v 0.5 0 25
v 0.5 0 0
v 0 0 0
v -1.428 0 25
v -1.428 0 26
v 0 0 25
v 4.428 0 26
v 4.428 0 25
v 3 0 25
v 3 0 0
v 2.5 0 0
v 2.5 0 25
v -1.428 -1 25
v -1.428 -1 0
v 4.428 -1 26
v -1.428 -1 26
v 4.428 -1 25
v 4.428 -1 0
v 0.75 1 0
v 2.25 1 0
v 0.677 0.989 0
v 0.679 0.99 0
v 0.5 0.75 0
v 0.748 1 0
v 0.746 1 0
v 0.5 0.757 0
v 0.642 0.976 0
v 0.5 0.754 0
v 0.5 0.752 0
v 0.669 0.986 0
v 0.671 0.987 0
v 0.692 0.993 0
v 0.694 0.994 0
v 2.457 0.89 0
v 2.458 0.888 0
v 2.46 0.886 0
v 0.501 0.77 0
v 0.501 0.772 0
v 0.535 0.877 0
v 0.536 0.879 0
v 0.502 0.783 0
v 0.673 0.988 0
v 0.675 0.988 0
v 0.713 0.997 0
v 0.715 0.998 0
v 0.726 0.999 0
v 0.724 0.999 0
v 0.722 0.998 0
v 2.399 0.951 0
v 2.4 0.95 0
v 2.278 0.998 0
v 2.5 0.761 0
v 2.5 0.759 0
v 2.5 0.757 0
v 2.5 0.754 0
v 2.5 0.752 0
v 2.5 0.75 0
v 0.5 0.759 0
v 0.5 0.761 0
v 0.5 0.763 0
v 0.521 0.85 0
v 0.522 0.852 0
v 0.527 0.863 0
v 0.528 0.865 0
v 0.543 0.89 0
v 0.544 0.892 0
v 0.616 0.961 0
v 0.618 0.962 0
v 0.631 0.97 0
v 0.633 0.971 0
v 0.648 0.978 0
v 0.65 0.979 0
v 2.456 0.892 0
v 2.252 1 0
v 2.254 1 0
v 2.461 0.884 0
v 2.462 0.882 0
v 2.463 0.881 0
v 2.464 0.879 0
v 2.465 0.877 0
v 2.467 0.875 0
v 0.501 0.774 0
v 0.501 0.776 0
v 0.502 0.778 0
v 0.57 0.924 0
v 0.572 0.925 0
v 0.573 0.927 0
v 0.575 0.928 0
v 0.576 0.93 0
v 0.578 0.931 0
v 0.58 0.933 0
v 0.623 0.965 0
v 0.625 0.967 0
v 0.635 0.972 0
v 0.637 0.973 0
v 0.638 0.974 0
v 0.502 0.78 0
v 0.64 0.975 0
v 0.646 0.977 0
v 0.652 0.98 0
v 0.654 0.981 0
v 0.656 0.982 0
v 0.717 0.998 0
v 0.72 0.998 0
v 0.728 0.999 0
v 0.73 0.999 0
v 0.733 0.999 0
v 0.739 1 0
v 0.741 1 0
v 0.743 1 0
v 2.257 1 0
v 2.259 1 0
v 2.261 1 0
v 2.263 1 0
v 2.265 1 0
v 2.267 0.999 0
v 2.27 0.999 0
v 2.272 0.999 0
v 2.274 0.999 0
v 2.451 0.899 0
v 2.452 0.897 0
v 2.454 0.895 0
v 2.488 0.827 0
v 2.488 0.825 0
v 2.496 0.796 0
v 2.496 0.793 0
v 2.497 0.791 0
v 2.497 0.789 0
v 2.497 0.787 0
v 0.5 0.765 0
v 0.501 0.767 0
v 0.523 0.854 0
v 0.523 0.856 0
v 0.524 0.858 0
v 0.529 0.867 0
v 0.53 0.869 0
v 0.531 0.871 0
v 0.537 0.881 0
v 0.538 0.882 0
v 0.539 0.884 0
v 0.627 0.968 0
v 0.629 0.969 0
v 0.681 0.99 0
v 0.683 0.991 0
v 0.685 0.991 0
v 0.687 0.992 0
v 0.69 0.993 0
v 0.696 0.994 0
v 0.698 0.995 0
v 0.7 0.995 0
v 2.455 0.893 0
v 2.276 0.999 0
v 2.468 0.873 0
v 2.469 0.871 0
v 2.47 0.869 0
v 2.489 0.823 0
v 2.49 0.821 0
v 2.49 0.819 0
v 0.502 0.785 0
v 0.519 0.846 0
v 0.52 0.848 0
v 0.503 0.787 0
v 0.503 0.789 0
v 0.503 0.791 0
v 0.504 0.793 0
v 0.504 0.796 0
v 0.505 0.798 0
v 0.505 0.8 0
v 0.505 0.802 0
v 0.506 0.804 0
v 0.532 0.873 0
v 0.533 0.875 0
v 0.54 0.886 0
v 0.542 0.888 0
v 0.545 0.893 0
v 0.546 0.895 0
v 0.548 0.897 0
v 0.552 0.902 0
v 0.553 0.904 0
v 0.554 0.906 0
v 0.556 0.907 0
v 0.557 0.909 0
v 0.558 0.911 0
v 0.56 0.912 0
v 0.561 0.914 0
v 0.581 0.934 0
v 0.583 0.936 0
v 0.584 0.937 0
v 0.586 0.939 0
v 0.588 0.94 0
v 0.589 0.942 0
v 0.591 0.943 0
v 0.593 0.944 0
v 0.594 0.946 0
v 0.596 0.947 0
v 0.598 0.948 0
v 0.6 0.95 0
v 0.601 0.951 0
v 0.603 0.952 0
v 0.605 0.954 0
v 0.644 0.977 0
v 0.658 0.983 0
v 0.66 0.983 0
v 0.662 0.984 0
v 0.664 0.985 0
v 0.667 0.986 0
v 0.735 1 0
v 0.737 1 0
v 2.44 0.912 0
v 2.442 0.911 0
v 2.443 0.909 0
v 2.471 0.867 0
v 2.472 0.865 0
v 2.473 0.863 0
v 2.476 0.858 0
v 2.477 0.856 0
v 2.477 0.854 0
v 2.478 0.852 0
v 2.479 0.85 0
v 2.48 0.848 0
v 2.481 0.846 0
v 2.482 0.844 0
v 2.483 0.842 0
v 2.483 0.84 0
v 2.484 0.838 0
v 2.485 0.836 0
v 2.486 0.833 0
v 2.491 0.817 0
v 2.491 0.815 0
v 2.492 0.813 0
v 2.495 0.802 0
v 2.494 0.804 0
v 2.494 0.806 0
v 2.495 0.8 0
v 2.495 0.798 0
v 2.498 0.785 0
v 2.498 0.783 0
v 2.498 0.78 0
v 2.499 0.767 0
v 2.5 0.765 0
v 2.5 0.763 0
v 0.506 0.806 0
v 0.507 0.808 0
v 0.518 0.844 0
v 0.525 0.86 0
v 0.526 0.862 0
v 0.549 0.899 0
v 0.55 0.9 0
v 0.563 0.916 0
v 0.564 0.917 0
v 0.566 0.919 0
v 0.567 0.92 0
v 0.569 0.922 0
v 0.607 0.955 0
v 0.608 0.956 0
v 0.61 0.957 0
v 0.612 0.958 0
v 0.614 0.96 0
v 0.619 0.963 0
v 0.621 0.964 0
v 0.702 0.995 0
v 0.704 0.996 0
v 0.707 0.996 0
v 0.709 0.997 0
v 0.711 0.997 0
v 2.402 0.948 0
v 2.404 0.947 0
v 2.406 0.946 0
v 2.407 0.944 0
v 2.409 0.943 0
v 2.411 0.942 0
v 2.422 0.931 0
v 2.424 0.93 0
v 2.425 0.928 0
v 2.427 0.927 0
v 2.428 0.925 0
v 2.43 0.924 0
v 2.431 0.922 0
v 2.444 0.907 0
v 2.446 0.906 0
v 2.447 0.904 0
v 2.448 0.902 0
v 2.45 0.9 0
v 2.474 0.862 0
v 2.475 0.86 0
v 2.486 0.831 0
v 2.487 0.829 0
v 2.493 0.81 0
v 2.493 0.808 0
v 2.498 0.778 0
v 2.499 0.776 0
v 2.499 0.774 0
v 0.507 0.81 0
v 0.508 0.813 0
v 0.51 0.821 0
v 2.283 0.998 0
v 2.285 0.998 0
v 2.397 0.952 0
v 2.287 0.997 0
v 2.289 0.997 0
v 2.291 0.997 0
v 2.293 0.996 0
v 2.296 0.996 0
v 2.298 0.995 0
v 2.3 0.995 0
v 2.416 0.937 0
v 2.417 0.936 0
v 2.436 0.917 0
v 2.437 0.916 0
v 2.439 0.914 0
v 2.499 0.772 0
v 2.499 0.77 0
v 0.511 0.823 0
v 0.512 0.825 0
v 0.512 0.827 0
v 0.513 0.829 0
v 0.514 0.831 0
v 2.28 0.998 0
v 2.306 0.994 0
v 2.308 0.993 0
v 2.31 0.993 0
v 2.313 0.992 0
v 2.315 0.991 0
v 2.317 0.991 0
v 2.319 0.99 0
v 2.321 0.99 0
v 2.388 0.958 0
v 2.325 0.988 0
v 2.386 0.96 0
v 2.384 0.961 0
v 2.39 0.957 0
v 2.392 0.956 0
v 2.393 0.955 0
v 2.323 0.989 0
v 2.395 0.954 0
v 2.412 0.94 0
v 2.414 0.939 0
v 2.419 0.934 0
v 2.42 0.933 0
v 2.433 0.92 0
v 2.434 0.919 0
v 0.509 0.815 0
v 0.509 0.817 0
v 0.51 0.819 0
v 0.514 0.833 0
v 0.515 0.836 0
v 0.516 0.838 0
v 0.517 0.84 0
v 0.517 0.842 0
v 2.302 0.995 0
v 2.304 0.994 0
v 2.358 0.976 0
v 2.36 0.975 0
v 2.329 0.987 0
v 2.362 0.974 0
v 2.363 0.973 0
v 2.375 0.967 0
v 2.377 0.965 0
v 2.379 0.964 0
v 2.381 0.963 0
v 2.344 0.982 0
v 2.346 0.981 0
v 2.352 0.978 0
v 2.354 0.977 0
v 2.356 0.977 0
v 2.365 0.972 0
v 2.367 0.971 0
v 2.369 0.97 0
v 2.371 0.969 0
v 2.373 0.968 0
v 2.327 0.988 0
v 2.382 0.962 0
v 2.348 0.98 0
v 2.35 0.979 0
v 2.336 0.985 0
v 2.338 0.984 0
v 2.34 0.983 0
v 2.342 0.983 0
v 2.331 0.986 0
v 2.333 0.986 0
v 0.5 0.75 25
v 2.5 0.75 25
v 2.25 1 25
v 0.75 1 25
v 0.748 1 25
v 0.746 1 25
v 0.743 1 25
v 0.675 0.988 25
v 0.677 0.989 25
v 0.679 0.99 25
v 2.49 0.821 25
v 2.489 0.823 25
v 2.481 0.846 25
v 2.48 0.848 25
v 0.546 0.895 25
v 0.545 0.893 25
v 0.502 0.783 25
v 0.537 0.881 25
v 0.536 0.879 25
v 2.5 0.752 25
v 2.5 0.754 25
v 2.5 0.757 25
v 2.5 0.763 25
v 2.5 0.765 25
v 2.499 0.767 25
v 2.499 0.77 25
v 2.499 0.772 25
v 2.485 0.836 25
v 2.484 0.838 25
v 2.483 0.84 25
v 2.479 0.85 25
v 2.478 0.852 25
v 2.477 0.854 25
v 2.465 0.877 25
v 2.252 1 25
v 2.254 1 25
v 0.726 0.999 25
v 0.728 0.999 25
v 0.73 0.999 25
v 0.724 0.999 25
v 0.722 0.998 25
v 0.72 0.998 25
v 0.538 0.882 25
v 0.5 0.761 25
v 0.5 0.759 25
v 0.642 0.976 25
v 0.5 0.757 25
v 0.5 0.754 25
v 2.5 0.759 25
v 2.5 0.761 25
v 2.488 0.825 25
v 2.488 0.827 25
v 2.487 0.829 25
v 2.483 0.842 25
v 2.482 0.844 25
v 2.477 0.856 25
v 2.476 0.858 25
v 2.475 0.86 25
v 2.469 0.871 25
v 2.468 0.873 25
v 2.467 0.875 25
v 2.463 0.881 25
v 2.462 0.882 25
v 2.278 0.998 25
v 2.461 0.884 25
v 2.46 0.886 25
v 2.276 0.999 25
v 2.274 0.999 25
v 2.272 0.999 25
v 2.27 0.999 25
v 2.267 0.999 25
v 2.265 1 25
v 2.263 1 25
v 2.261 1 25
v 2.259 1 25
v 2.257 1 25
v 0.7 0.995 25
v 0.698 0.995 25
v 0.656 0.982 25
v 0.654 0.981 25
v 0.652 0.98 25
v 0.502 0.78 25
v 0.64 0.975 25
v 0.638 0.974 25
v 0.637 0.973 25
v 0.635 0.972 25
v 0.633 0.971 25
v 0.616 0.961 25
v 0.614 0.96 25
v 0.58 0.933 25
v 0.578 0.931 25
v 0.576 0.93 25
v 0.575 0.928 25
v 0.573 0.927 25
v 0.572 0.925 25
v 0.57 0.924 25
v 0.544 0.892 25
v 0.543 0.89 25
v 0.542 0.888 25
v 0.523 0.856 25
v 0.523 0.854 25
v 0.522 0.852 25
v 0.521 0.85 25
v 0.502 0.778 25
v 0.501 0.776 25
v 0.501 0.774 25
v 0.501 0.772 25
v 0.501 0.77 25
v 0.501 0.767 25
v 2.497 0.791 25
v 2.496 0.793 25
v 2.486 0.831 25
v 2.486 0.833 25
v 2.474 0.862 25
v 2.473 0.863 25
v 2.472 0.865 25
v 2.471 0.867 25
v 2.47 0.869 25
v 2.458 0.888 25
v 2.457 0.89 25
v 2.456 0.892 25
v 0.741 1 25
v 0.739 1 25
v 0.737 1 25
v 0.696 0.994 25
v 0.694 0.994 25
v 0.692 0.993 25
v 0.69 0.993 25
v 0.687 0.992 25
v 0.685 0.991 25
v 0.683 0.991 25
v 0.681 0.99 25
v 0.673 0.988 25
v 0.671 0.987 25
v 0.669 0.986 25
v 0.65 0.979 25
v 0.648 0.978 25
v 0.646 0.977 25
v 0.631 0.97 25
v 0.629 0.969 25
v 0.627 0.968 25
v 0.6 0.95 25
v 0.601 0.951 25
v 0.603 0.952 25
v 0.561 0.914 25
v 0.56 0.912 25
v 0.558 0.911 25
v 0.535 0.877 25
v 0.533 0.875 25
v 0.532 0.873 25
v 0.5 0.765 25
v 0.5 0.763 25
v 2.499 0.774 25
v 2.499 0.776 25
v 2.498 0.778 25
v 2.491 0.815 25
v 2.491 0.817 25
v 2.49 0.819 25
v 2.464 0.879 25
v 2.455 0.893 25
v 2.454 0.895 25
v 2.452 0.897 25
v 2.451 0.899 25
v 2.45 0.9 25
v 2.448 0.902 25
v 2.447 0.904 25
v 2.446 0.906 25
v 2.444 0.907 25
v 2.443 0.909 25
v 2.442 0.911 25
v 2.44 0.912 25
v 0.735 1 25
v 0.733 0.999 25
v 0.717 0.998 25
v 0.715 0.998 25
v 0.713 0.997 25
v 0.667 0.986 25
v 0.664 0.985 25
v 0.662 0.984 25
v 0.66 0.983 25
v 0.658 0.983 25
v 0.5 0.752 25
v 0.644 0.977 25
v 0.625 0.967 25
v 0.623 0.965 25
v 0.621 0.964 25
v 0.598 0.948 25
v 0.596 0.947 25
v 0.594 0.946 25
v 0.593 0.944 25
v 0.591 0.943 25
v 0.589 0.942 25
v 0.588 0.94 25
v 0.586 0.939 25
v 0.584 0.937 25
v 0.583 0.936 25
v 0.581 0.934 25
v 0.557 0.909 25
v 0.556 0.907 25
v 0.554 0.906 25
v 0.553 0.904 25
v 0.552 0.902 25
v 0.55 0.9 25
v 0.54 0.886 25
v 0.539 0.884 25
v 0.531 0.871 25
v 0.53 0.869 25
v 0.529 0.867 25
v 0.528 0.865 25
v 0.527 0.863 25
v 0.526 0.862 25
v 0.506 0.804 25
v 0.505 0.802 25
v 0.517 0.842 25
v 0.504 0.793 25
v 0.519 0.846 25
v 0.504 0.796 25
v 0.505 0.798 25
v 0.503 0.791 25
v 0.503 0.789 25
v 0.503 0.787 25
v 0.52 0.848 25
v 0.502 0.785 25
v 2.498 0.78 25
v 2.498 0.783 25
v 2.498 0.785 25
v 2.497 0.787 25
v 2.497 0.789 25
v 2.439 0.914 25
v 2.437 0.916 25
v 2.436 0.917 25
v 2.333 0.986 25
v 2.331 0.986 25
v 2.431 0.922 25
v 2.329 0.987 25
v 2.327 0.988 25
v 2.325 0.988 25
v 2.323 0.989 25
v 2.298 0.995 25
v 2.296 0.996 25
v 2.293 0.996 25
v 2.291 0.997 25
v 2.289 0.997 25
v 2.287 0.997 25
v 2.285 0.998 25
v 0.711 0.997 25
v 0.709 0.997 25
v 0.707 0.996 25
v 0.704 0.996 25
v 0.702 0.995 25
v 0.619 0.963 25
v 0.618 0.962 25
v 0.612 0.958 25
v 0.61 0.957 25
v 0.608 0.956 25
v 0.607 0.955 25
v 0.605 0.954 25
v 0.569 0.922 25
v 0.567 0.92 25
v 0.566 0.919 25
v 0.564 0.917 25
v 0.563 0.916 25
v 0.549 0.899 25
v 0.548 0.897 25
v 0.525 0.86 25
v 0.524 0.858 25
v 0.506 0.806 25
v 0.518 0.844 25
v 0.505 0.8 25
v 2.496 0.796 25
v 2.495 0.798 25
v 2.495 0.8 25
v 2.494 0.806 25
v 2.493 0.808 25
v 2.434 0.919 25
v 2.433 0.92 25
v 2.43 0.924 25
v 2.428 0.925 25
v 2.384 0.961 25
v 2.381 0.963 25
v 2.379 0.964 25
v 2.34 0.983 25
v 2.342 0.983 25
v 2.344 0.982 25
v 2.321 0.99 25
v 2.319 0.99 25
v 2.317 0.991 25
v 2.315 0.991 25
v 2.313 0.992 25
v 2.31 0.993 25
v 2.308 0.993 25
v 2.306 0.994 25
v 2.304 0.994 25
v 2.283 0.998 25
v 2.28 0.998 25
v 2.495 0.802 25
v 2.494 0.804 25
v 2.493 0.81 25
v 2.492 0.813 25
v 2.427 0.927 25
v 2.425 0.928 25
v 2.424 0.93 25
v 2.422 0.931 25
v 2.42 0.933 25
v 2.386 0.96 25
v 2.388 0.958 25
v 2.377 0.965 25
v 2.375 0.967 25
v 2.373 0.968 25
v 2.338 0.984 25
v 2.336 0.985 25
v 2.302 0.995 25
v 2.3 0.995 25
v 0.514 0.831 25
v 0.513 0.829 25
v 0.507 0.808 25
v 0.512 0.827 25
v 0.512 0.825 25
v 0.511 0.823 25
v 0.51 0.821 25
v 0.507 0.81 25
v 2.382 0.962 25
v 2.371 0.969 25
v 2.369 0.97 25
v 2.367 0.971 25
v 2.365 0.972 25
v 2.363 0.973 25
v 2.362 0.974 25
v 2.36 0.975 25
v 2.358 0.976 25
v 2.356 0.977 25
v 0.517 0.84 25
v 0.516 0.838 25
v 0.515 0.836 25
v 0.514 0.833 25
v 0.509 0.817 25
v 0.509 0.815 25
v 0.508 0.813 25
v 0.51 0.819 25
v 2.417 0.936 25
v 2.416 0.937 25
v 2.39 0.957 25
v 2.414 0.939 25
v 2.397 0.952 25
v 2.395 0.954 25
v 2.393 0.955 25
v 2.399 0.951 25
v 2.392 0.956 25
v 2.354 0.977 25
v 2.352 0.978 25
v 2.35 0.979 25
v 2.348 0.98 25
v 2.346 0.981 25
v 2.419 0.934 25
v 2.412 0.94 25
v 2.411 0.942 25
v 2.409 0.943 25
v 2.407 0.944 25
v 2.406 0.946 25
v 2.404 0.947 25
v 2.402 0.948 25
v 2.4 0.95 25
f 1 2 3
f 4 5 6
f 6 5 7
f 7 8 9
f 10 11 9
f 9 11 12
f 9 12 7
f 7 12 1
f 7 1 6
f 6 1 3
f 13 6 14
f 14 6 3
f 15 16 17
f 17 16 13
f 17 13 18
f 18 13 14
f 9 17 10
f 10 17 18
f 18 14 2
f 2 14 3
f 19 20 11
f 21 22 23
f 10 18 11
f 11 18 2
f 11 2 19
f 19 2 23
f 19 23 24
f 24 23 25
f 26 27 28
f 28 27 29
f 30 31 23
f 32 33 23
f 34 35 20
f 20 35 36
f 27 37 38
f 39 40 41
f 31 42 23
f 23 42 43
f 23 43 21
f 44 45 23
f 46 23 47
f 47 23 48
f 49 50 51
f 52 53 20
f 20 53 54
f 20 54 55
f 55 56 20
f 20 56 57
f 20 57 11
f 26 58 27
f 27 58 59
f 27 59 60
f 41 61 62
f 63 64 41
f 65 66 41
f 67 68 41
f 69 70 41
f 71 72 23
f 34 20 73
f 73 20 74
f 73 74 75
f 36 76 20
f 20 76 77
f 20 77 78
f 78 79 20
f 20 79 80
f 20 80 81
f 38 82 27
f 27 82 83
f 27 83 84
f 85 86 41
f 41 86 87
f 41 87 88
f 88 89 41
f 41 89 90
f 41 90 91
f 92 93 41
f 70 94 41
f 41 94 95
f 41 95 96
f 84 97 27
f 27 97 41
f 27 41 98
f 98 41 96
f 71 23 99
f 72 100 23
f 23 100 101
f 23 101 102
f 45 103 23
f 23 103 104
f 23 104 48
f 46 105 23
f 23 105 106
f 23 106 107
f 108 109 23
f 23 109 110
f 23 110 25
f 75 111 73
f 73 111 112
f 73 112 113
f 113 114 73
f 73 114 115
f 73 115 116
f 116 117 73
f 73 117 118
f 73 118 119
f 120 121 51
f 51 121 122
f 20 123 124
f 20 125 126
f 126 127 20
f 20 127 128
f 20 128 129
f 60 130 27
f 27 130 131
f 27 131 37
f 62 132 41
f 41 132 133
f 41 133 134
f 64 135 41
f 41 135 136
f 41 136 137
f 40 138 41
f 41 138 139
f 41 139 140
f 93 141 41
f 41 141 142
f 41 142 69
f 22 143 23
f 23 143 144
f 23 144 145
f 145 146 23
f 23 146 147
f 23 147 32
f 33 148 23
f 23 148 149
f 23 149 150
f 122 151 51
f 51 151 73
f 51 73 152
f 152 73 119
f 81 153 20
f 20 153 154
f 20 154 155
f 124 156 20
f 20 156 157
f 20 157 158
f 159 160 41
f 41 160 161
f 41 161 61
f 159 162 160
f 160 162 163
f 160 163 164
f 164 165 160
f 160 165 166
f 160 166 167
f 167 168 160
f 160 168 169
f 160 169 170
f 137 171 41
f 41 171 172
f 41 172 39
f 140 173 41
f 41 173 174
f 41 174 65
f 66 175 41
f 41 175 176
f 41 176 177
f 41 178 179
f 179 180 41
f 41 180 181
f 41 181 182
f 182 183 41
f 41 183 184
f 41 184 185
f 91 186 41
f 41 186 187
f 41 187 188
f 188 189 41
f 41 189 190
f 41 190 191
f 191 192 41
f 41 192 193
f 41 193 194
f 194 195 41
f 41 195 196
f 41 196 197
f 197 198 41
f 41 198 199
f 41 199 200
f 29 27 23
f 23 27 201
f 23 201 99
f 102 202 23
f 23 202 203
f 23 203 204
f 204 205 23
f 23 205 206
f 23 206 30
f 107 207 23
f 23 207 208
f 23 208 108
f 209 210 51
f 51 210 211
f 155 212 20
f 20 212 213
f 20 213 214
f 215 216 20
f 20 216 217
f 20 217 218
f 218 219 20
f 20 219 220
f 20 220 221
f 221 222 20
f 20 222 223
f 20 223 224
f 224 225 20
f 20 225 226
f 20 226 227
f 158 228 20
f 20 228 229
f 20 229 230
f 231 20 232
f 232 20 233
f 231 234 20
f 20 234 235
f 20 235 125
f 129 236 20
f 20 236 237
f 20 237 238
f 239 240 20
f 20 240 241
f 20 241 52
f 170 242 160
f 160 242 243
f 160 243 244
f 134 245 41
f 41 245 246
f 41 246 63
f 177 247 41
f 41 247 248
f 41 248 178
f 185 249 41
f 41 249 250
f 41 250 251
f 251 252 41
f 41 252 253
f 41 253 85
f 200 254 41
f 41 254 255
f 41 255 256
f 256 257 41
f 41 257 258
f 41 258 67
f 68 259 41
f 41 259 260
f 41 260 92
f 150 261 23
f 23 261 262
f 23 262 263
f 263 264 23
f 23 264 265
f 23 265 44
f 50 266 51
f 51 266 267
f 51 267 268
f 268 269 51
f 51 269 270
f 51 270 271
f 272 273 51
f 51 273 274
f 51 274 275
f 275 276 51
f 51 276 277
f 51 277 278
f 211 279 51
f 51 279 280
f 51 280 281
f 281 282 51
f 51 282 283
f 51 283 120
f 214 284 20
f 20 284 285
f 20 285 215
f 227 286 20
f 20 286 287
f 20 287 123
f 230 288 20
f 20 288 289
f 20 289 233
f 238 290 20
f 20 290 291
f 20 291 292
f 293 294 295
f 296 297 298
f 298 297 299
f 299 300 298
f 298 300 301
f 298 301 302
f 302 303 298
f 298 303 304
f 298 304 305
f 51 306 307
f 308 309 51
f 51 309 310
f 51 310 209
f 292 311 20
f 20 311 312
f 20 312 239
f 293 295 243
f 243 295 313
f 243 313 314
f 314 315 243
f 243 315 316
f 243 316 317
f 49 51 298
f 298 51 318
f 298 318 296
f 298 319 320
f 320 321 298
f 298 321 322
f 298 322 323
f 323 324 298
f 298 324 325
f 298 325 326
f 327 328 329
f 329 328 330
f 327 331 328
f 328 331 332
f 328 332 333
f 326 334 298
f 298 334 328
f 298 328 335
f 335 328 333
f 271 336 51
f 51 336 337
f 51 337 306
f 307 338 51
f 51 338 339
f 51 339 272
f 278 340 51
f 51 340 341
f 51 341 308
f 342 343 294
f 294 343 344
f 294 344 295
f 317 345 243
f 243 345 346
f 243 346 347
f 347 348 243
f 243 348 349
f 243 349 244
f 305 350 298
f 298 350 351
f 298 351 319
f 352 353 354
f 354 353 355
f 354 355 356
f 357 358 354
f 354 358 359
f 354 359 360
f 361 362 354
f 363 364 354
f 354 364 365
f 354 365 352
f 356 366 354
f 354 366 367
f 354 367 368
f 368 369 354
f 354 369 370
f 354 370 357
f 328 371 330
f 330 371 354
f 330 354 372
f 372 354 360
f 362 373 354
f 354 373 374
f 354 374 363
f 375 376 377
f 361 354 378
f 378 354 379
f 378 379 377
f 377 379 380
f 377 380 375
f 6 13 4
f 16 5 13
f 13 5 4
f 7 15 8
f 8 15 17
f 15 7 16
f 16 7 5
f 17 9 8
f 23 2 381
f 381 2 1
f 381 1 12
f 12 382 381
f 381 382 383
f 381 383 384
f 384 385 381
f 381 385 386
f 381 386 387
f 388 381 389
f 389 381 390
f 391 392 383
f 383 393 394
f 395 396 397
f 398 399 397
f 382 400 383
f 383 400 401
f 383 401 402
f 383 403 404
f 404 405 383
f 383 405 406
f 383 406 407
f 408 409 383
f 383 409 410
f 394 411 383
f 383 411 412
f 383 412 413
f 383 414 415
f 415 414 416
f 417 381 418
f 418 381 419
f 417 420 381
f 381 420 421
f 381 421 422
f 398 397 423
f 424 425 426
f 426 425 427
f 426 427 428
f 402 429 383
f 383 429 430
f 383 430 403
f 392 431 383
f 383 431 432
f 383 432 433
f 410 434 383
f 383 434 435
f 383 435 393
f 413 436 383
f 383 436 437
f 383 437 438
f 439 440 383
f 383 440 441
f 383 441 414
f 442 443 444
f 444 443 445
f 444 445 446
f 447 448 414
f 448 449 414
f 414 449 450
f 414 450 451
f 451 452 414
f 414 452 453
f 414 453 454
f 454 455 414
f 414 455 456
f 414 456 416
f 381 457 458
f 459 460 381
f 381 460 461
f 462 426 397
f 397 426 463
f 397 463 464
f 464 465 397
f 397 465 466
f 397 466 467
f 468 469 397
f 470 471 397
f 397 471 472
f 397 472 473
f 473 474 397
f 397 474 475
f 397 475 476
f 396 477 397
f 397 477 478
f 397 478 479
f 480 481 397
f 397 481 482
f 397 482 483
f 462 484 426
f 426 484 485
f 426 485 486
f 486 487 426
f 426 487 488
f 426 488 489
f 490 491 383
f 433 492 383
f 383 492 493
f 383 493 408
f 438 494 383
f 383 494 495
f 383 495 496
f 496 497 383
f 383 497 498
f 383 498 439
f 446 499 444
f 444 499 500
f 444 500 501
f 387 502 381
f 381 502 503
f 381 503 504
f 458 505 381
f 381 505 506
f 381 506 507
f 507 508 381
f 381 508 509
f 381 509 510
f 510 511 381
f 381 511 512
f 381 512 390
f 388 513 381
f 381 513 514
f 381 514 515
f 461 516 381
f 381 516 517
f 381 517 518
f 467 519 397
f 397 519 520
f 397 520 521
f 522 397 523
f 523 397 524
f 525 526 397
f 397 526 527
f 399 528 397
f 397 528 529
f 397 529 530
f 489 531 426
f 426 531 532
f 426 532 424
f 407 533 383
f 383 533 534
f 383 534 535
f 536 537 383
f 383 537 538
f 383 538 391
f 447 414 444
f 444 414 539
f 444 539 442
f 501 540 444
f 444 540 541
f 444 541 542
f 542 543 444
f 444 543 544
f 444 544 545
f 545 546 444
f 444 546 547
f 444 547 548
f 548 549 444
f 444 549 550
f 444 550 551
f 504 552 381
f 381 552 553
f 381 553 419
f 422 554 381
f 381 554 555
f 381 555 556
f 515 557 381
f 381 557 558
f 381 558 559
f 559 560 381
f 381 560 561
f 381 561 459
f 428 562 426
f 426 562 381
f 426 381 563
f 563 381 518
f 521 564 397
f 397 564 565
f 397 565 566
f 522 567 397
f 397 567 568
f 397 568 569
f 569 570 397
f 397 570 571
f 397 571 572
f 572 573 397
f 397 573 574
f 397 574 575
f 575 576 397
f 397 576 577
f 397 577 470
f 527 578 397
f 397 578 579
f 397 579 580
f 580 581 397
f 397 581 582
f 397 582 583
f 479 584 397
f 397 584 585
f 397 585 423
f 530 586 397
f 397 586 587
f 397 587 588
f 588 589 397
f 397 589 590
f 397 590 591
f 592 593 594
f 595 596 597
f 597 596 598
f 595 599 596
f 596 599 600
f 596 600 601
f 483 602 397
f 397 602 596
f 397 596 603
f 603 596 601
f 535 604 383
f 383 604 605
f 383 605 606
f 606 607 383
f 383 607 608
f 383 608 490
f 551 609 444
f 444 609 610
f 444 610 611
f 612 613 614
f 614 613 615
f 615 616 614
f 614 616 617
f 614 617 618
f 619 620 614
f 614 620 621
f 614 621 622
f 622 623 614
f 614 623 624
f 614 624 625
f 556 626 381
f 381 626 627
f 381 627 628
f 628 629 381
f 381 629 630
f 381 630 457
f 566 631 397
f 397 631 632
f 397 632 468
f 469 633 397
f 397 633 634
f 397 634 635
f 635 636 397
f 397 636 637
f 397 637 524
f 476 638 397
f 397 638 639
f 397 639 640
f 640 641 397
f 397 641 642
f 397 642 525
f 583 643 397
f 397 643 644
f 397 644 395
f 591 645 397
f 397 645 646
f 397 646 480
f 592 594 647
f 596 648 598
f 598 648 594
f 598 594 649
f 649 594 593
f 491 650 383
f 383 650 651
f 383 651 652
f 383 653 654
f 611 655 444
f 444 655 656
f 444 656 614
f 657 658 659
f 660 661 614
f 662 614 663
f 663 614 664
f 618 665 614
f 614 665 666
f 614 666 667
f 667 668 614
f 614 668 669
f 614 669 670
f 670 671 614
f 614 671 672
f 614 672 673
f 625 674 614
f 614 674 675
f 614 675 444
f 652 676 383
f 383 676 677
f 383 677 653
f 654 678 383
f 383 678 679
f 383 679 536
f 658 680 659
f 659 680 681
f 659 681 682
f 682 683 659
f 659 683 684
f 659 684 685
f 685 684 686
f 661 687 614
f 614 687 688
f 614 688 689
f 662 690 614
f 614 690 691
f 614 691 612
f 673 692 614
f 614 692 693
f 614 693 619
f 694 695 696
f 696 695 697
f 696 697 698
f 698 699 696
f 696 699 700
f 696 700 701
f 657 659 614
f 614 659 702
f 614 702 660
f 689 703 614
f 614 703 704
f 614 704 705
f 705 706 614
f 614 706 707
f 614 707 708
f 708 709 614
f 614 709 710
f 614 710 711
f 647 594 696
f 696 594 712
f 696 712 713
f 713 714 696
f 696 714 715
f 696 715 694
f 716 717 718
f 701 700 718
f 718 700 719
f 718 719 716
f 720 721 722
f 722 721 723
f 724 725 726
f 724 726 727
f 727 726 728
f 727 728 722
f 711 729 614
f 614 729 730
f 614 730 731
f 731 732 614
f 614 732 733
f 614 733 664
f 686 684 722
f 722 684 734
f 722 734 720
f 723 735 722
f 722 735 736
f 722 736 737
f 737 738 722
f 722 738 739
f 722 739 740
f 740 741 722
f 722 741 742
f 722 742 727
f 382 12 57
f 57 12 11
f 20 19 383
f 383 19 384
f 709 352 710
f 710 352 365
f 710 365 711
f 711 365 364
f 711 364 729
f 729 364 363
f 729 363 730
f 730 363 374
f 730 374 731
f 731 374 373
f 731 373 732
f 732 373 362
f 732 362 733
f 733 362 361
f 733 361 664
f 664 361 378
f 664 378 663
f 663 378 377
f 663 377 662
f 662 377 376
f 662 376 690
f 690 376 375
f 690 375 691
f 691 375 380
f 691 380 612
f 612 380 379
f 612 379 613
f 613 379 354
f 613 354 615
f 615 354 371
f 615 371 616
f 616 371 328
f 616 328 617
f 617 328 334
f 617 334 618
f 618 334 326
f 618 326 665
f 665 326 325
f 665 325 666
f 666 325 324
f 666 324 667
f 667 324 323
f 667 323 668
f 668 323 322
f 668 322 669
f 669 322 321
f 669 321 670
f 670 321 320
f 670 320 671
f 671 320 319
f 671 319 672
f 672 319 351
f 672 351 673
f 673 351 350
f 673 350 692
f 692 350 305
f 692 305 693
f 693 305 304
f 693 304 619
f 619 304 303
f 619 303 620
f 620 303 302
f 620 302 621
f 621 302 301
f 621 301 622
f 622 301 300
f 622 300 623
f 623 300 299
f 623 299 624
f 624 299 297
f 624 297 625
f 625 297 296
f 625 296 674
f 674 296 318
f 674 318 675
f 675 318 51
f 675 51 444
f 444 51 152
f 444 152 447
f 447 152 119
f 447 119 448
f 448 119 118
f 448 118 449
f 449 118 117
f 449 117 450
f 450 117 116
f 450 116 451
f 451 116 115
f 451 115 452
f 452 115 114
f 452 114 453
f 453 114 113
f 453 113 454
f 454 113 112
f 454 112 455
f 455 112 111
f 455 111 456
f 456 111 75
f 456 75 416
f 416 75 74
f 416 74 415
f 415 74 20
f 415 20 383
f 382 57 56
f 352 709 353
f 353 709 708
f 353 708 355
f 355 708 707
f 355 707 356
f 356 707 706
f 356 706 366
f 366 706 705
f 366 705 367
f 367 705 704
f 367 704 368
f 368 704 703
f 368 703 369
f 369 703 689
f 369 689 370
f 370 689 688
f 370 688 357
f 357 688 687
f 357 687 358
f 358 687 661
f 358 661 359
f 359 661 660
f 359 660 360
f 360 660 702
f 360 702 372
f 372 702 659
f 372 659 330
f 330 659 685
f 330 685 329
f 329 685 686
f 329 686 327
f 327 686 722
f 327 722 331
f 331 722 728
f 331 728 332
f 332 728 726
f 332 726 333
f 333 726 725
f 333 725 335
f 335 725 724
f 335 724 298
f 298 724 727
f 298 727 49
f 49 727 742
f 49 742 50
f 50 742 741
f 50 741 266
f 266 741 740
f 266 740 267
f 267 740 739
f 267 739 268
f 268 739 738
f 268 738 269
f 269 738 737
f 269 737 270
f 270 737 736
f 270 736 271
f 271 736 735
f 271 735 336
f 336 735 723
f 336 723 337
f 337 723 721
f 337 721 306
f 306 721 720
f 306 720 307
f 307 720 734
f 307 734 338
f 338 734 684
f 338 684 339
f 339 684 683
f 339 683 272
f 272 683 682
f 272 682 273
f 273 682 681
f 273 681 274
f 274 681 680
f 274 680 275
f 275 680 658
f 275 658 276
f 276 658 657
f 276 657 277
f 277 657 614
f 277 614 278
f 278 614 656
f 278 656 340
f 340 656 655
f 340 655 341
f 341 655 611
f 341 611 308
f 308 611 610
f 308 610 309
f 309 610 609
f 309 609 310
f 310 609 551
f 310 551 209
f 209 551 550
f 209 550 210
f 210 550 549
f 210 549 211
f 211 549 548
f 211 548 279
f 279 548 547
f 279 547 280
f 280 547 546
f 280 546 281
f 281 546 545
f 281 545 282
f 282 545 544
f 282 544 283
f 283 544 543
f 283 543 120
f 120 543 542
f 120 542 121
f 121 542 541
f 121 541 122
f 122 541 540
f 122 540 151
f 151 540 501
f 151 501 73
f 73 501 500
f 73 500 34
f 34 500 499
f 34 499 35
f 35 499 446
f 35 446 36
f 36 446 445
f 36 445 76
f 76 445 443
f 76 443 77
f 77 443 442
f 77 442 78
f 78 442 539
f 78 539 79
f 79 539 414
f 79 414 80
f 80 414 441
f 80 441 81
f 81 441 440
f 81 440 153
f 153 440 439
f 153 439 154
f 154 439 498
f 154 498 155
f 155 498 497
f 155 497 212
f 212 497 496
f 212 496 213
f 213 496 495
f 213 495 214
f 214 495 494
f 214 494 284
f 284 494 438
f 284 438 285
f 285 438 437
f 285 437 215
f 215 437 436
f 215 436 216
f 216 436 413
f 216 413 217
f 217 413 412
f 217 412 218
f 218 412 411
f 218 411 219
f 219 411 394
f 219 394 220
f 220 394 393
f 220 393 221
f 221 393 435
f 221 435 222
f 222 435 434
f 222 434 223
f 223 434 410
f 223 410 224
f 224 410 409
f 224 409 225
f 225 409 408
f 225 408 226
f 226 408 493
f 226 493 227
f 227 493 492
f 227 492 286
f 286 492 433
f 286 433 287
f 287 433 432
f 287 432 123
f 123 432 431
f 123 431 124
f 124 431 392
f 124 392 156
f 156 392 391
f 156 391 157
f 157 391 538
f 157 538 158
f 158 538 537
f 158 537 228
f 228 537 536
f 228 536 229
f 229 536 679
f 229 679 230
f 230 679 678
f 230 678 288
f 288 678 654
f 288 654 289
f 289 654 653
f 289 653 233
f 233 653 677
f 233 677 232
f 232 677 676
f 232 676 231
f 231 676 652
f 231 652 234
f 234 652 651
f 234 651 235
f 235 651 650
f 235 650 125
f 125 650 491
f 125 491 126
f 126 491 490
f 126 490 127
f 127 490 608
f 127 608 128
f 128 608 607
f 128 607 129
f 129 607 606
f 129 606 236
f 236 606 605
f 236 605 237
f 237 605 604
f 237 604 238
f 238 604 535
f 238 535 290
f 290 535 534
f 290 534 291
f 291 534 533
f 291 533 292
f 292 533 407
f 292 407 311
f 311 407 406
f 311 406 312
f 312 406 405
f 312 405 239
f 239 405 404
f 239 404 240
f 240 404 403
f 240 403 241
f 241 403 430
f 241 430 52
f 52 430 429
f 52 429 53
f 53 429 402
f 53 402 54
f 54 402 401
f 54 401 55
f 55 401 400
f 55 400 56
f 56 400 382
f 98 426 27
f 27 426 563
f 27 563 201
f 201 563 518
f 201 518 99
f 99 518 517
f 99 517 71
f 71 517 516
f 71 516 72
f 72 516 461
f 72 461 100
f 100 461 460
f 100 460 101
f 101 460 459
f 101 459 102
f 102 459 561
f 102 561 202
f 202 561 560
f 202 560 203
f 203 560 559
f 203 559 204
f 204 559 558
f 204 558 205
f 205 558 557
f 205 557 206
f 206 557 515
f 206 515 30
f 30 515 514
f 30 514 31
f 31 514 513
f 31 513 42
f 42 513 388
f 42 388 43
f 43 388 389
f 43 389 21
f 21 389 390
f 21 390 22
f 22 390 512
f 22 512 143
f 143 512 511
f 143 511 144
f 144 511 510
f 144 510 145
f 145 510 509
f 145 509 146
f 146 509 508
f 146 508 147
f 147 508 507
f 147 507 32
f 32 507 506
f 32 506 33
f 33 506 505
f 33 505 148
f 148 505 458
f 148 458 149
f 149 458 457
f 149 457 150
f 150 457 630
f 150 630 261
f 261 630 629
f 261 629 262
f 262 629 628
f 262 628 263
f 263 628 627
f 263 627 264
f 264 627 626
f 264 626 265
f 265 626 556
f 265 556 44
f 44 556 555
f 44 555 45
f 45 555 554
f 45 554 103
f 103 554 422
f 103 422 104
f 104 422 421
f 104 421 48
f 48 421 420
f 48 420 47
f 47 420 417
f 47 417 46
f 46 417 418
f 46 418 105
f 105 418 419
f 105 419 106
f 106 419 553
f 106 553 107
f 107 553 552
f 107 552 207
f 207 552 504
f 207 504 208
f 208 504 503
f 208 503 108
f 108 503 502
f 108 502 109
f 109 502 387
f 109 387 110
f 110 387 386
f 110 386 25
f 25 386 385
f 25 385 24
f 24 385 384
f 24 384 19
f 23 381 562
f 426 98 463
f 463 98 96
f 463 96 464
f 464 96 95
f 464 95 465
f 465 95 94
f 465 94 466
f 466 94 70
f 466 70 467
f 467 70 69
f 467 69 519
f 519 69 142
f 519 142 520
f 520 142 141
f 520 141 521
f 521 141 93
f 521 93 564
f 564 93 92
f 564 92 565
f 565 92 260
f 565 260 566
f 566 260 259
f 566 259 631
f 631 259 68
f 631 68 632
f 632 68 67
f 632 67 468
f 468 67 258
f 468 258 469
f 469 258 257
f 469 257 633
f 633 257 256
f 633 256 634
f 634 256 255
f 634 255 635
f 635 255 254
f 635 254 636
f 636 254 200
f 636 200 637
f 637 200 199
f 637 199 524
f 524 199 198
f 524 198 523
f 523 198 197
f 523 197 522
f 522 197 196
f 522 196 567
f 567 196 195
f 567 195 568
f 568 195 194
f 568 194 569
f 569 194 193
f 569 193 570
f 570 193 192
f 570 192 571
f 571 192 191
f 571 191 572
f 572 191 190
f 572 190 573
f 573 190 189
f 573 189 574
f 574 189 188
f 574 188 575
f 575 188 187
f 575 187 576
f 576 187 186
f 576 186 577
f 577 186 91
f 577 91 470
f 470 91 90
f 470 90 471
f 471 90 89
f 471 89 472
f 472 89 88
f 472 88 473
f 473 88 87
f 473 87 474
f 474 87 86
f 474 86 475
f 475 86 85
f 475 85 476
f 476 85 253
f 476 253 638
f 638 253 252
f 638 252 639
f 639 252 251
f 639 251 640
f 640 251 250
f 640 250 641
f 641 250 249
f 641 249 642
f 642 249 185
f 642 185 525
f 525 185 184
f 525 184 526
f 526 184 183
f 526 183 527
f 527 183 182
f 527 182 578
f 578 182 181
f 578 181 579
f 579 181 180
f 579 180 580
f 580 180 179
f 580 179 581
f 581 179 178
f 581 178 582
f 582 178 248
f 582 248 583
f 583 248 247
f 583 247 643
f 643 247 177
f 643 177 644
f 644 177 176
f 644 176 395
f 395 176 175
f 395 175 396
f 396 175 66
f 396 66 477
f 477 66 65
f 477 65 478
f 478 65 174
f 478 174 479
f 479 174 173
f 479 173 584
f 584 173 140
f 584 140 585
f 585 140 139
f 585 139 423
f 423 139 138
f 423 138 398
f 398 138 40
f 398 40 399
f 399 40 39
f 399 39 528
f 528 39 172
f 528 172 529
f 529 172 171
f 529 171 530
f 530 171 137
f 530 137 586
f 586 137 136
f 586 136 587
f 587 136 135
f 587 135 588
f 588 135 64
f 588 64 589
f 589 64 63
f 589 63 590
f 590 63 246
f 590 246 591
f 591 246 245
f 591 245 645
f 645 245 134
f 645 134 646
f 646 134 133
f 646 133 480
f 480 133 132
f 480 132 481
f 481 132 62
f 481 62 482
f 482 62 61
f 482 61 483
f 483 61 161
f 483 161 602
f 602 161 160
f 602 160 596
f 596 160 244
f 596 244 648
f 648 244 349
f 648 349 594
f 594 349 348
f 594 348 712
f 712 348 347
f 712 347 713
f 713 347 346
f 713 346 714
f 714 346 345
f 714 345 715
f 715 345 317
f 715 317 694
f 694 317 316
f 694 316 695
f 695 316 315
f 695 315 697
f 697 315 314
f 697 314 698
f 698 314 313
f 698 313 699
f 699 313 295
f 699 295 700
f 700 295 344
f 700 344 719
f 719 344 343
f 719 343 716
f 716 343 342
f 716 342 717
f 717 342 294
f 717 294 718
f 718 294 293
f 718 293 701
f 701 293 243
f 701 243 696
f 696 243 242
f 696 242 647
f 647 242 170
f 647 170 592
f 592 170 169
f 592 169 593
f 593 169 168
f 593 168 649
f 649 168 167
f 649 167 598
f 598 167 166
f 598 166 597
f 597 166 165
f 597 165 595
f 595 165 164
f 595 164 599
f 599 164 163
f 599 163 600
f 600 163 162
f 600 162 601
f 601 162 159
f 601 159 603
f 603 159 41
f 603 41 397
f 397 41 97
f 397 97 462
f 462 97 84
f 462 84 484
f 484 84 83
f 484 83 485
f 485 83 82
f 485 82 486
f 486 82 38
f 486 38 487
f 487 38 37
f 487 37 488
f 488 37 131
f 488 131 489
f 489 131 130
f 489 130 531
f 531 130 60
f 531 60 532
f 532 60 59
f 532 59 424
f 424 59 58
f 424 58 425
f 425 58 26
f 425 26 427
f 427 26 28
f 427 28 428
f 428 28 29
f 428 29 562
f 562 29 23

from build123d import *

# Parameters (mm, degrees)
BOSS_EXTRUDE1_DEPTH = 25
SKETCH2_W           = 5.856296014
SKETCH2_H           = 1
BOSS_EXTRUDE2_DEPTH = 1
SKETCH3_W           = 2
SKETCH3_H           = 25
BOSS_EXTRUDE3_DEPTH = 1
FILLET1_R           = 0.25


with BuildPart() as part:
    # Sketch1 → Boss-Extrude1 (new body)
    with BuildSketch(Plane.XY):
        Polygon((0, 0), (-1.428148007, -1), (4.428148007, -1), (3, 0), align=None)
    extrude(amount=BOSS_EXTRUDE1_DEPTH)

    # Sketch2 → Boss-Extrude2 (add)
    with BuildSketch(Plane.XY.offset(25)):
        with Locations((1.5, -0.5)):
            Rectangle(SKETCH2_W, SKETCH2_H)
    extrude(amount=BOSS_EXTRUDE2_DEPTH)

    # Sketch3 → Boss-Extrude3 (add)
    with BuildSketch(Plane(origin=(0, 0, 0), x_dir=(1, 0, 0), z_dir=(0, 1, 0))):
        with Locations((1.5, -12.5)):
            Rectangle(SKETCH3_W, SKETCH3_H)
    extrude(amount=BOSS_EXTRUDE3_DEPTH)

    # Fillet1
    fillet1_edges = [part.edges().sort_by_distance(p)[0] for p in [
        (0.5, 1, 12.5),
        (2.5, 1, 12.5),
    ]]
    fillet(fillet1_edges, radius=FILLET1_R)


solid = part.part
